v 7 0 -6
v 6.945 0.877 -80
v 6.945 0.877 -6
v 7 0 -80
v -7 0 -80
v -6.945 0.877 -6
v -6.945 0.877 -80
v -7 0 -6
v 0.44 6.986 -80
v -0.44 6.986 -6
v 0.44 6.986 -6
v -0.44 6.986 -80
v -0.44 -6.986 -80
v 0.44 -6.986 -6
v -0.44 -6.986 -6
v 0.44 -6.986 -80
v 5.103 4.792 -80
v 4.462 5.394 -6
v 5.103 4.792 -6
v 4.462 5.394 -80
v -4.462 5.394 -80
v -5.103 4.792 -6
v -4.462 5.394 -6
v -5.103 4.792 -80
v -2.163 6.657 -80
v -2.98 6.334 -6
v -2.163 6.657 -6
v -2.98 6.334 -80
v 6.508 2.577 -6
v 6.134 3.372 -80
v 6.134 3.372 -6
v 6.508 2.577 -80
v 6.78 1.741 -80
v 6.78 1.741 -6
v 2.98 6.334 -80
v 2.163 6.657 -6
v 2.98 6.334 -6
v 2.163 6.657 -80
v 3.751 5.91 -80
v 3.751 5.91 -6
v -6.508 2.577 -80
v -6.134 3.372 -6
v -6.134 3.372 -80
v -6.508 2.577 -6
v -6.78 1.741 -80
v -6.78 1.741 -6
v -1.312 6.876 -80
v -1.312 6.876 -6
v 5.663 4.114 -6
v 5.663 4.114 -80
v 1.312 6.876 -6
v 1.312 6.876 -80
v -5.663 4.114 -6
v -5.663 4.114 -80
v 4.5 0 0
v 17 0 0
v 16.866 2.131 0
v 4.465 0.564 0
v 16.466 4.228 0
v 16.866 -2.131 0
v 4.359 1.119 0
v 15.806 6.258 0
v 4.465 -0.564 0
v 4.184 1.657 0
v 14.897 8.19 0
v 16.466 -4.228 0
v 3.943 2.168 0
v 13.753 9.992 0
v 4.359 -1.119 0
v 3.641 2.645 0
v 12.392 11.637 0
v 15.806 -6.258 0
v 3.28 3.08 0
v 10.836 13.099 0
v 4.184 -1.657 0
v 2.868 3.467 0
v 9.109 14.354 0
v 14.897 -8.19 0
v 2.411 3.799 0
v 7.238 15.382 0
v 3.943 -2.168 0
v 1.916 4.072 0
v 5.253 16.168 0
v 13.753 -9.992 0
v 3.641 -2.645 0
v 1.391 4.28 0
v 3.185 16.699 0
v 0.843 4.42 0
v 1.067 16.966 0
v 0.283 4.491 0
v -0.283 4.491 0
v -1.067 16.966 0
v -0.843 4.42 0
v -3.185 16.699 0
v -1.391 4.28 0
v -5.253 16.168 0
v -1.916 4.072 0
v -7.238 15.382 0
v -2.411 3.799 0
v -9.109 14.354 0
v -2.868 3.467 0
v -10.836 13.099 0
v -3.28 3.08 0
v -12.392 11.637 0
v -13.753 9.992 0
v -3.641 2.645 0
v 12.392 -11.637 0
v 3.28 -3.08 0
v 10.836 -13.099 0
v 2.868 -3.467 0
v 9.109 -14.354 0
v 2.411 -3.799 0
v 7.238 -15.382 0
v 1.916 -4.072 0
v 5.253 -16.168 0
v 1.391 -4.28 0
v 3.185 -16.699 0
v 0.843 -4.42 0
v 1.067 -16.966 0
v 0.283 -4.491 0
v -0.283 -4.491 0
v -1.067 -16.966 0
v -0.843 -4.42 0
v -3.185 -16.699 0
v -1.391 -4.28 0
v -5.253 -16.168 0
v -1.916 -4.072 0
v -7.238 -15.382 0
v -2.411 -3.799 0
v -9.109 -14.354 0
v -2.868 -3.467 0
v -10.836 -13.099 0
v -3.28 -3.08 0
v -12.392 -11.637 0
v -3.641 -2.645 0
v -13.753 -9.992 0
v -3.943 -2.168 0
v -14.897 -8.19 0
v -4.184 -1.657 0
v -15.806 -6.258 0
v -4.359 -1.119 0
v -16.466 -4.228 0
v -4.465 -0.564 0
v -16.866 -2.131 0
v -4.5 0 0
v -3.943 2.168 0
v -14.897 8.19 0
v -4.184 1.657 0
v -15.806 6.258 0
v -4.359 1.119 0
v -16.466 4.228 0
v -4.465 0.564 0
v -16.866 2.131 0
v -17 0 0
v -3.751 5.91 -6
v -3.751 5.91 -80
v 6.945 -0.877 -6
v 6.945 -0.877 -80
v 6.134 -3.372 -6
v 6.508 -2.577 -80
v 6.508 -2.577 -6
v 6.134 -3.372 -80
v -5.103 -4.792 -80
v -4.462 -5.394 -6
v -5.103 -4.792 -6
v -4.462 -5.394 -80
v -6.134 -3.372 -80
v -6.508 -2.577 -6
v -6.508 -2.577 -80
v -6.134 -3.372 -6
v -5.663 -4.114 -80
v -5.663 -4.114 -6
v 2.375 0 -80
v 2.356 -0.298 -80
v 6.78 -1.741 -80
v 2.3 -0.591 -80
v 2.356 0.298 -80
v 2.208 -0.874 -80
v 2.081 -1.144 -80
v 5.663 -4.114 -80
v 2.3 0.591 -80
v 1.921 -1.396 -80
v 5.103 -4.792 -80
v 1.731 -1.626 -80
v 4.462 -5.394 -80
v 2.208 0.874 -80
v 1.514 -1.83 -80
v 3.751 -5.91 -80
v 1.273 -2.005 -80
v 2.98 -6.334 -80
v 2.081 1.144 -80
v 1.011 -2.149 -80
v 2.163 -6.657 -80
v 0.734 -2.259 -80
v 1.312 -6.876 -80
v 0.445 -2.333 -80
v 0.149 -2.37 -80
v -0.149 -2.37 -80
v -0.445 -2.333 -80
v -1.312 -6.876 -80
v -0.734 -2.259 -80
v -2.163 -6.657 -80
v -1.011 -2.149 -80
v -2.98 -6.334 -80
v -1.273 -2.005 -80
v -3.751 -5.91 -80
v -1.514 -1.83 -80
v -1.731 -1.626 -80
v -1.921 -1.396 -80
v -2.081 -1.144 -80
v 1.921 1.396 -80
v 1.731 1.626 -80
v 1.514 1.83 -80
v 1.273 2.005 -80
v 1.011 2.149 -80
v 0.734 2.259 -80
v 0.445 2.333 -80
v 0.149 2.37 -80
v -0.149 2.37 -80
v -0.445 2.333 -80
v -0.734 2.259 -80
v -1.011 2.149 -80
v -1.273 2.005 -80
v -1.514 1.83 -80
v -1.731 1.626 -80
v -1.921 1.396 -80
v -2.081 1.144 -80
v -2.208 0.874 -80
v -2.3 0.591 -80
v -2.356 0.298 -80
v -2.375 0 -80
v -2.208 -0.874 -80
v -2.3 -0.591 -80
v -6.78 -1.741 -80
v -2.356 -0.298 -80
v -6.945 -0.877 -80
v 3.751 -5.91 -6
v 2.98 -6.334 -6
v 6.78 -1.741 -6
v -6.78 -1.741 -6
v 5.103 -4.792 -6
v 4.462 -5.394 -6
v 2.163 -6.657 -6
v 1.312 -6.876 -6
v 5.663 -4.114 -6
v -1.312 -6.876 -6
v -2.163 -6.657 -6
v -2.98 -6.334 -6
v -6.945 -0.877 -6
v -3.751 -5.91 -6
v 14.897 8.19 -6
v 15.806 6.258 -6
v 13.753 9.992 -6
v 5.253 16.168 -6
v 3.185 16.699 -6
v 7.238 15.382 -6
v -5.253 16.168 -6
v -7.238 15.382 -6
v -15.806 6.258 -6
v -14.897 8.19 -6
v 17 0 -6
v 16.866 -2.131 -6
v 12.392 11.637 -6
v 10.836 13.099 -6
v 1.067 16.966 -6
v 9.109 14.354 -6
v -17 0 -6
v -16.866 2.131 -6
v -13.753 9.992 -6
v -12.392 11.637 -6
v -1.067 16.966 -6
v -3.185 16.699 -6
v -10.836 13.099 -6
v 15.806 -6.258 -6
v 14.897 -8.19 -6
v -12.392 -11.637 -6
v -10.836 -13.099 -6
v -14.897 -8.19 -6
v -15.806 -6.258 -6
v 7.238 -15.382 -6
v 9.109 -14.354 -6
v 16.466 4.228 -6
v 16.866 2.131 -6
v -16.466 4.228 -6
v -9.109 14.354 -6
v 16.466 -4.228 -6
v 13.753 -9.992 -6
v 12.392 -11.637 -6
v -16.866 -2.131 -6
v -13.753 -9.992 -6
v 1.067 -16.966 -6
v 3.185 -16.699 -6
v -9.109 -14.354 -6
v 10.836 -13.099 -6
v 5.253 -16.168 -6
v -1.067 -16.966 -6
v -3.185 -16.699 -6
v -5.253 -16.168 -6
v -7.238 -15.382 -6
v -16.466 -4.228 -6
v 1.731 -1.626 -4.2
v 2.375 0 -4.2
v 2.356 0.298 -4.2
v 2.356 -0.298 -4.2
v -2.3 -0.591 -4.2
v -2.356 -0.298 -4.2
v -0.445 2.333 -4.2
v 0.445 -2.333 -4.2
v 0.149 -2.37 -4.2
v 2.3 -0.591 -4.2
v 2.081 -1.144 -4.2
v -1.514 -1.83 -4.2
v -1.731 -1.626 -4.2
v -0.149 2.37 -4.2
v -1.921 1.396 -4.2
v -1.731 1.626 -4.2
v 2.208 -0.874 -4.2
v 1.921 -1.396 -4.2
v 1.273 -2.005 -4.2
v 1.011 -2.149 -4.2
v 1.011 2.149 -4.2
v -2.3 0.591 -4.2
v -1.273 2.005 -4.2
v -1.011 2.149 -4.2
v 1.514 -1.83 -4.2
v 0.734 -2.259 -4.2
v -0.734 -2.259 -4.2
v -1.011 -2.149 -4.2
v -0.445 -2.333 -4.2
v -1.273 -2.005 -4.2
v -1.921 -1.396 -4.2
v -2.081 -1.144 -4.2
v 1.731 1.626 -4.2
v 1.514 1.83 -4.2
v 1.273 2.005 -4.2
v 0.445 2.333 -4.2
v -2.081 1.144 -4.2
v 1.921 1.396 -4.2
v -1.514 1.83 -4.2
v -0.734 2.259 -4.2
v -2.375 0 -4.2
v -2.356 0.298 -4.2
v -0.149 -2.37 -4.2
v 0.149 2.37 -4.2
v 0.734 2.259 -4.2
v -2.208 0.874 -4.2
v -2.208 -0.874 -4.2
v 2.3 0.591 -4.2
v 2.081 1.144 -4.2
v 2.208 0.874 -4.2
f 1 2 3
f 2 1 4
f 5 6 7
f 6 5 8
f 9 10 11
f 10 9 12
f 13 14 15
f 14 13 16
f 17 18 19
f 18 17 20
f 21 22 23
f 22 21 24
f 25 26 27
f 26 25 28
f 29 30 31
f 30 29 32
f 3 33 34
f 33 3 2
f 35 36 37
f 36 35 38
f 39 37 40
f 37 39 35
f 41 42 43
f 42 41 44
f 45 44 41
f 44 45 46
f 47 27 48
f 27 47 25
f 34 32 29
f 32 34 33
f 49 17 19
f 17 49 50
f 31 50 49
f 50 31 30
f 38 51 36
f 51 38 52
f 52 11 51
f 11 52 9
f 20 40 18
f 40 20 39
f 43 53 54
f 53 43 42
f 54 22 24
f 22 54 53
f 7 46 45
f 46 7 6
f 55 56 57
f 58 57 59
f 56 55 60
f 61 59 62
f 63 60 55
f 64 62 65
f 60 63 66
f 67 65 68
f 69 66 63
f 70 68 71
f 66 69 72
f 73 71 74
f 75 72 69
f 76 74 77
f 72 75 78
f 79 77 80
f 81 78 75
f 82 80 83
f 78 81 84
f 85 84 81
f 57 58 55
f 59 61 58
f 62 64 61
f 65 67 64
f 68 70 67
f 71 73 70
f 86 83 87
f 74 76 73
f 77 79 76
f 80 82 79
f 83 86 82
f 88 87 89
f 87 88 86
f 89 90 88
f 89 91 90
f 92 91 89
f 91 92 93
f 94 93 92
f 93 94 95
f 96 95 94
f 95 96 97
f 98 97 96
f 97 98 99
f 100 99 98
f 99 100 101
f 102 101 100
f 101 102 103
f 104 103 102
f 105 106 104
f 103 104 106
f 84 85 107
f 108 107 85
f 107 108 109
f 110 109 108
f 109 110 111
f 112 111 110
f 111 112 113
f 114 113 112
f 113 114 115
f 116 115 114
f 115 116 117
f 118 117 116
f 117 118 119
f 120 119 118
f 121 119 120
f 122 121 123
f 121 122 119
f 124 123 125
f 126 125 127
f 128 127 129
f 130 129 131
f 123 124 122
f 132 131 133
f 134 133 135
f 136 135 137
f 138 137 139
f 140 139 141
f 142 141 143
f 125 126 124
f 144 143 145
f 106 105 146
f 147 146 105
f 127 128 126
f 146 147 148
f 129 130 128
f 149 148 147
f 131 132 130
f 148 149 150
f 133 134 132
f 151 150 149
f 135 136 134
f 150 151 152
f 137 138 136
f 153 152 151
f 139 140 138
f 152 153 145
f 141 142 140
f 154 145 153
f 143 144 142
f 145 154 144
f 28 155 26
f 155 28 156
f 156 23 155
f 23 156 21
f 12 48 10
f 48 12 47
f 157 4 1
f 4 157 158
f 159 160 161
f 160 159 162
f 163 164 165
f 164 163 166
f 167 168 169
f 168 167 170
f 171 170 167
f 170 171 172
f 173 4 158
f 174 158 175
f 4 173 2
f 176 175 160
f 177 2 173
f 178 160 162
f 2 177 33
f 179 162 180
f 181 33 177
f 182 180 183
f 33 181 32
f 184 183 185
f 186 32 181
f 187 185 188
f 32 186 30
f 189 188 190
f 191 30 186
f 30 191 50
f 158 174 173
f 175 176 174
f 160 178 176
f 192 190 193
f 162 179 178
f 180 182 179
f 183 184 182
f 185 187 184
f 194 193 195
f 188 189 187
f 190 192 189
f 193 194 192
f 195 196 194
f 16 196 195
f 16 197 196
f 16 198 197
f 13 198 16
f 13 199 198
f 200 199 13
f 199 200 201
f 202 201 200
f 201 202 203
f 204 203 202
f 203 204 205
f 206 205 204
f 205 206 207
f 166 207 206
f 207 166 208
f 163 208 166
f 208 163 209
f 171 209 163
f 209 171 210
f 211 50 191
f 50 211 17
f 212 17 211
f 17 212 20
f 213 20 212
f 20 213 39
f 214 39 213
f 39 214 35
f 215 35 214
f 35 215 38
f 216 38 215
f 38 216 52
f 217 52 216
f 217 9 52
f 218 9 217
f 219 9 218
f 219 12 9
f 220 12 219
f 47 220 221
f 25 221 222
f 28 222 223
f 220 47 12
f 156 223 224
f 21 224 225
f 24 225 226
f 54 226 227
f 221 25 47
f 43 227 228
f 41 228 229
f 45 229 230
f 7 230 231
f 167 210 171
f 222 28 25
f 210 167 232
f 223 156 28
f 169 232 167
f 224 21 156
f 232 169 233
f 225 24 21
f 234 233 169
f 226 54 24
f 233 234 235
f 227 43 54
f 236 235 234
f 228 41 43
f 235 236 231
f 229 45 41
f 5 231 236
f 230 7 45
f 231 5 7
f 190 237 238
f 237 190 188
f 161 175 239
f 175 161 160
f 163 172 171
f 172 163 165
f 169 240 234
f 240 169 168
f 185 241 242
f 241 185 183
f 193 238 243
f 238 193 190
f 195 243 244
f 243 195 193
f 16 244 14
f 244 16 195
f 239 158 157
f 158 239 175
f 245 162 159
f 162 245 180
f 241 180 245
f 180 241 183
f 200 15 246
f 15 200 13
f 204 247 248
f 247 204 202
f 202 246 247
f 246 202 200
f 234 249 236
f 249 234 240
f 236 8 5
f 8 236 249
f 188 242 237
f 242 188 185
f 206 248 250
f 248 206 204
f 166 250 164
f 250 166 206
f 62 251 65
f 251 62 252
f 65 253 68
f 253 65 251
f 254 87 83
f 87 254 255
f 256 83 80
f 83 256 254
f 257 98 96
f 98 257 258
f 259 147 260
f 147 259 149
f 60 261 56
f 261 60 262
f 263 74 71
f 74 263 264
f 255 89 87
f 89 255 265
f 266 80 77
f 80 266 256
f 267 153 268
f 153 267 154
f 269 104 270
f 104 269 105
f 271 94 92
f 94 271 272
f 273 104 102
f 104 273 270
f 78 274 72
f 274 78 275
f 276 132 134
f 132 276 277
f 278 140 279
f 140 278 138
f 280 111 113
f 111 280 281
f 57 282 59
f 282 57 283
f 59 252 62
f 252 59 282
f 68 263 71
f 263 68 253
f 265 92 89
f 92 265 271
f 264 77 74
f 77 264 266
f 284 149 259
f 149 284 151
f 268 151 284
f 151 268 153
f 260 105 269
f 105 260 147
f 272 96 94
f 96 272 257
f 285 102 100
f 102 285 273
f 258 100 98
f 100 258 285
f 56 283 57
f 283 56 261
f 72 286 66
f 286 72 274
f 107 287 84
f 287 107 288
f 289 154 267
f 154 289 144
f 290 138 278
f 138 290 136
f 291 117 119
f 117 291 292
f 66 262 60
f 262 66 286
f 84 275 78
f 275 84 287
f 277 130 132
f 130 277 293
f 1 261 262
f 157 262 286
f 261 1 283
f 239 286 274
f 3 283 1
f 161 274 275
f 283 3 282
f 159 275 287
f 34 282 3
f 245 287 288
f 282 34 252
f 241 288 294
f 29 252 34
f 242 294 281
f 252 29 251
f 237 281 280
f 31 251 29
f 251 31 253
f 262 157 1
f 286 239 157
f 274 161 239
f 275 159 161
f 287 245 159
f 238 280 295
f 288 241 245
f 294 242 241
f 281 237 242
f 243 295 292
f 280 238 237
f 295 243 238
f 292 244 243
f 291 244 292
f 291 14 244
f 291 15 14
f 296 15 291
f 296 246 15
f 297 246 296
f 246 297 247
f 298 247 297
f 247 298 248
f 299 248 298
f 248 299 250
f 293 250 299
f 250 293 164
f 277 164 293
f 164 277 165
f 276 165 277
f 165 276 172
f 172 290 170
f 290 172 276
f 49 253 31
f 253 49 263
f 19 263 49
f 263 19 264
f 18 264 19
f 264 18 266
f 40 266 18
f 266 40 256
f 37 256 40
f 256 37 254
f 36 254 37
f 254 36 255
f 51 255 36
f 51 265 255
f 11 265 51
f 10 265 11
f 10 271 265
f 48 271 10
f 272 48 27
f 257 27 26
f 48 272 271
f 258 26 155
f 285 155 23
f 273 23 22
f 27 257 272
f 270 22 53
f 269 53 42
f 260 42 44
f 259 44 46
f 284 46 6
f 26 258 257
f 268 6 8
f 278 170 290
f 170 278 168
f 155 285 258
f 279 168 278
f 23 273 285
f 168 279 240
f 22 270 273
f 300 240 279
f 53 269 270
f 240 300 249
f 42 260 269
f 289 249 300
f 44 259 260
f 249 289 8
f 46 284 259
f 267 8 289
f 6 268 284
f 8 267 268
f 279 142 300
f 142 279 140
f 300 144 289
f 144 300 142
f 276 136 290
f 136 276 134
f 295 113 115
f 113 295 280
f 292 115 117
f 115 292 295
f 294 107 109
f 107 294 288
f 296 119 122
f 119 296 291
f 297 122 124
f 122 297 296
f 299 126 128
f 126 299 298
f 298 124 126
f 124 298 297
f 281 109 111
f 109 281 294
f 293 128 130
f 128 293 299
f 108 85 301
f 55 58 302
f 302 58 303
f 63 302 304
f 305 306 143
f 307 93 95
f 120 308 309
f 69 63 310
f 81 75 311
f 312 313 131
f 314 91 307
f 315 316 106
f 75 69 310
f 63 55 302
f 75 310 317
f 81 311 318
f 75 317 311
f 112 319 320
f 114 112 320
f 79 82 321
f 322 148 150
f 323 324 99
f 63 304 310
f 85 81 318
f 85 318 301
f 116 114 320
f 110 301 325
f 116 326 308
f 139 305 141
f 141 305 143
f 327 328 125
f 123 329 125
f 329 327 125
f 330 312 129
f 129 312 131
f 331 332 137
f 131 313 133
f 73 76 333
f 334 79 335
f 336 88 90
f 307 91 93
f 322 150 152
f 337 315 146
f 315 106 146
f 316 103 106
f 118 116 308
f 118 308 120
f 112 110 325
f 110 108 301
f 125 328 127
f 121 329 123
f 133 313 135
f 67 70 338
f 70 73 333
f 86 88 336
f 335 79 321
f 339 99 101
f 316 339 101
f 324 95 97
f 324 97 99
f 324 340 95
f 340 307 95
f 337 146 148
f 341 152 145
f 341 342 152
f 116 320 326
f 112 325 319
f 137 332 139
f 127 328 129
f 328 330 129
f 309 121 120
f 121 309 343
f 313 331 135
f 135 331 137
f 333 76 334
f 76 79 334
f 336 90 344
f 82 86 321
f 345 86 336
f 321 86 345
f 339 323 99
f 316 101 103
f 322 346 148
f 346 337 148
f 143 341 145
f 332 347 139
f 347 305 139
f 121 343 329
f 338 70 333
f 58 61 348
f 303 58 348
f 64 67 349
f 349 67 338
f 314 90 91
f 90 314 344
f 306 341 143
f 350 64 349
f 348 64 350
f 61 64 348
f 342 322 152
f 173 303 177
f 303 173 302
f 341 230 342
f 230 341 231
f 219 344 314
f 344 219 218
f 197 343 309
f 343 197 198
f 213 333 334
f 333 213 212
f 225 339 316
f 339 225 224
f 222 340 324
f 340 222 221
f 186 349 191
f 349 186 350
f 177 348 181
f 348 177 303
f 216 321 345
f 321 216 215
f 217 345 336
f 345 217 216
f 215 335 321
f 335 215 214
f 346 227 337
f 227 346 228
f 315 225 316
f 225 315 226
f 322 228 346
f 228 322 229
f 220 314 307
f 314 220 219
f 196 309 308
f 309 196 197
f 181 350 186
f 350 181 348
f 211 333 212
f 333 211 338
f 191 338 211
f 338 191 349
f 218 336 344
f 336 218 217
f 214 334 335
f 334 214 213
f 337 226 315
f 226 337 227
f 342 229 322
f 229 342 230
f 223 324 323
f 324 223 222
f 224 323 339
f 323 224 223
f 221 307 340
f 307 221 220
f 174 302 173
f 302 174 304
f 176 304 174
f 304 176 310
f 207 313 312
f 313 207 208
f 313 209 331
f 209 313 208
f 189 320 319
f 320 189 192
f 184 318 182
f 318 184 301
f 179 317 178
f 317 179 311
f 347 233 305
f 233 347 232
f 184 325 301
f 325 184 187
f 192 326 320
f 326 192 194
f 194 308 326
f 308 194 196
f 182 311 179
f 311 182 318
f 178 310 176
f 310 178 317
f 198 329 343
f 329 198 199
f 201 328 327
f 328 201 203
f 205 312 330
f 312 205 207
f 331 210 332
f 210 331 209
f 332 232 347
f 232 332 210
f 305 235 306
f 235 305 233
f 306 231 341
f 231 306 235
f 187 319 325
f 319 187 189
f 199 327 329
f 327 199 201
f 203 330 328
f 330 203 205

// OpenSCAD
$fn = 50;


difference() {
	union() {
		translate(v = [0, 0, -80.0000000000]) {
			cylinder(h = 80, r = 7.0000000000);
		}
		translate(v = [0, 0, -6.0000000000]) {
			cylinder(h = 6, r = 17.0000000000);
		}
	}
	union() {
		translate(v = [0, 0, 0]) {
			rotate(a = [0, 0, 0]) {
				difference() {
					union() {
						#translate(v = [0, 0, -80.0000000000]) {
							cylinder(h = 80, r = 2.2500000000);
						}
						#translate(v = [0, 0, -4.2000000000]) {
							cylinder(h = 4.2000000000, r = 7.0000000000, r1 = 2.3750000000, r2 = 4.5000000000);
						}
						#translate(v = [0, 0, -80.0000000000]) {
							cylinder(h = 80, r = 2.3750000000);
						}
						#translate(v = [0, 0, -80.0000000000]) {
							cylinder(h = 80, r = 2.2500000000);
						}
					}
					union();
				}
			}
		}
	}
}
